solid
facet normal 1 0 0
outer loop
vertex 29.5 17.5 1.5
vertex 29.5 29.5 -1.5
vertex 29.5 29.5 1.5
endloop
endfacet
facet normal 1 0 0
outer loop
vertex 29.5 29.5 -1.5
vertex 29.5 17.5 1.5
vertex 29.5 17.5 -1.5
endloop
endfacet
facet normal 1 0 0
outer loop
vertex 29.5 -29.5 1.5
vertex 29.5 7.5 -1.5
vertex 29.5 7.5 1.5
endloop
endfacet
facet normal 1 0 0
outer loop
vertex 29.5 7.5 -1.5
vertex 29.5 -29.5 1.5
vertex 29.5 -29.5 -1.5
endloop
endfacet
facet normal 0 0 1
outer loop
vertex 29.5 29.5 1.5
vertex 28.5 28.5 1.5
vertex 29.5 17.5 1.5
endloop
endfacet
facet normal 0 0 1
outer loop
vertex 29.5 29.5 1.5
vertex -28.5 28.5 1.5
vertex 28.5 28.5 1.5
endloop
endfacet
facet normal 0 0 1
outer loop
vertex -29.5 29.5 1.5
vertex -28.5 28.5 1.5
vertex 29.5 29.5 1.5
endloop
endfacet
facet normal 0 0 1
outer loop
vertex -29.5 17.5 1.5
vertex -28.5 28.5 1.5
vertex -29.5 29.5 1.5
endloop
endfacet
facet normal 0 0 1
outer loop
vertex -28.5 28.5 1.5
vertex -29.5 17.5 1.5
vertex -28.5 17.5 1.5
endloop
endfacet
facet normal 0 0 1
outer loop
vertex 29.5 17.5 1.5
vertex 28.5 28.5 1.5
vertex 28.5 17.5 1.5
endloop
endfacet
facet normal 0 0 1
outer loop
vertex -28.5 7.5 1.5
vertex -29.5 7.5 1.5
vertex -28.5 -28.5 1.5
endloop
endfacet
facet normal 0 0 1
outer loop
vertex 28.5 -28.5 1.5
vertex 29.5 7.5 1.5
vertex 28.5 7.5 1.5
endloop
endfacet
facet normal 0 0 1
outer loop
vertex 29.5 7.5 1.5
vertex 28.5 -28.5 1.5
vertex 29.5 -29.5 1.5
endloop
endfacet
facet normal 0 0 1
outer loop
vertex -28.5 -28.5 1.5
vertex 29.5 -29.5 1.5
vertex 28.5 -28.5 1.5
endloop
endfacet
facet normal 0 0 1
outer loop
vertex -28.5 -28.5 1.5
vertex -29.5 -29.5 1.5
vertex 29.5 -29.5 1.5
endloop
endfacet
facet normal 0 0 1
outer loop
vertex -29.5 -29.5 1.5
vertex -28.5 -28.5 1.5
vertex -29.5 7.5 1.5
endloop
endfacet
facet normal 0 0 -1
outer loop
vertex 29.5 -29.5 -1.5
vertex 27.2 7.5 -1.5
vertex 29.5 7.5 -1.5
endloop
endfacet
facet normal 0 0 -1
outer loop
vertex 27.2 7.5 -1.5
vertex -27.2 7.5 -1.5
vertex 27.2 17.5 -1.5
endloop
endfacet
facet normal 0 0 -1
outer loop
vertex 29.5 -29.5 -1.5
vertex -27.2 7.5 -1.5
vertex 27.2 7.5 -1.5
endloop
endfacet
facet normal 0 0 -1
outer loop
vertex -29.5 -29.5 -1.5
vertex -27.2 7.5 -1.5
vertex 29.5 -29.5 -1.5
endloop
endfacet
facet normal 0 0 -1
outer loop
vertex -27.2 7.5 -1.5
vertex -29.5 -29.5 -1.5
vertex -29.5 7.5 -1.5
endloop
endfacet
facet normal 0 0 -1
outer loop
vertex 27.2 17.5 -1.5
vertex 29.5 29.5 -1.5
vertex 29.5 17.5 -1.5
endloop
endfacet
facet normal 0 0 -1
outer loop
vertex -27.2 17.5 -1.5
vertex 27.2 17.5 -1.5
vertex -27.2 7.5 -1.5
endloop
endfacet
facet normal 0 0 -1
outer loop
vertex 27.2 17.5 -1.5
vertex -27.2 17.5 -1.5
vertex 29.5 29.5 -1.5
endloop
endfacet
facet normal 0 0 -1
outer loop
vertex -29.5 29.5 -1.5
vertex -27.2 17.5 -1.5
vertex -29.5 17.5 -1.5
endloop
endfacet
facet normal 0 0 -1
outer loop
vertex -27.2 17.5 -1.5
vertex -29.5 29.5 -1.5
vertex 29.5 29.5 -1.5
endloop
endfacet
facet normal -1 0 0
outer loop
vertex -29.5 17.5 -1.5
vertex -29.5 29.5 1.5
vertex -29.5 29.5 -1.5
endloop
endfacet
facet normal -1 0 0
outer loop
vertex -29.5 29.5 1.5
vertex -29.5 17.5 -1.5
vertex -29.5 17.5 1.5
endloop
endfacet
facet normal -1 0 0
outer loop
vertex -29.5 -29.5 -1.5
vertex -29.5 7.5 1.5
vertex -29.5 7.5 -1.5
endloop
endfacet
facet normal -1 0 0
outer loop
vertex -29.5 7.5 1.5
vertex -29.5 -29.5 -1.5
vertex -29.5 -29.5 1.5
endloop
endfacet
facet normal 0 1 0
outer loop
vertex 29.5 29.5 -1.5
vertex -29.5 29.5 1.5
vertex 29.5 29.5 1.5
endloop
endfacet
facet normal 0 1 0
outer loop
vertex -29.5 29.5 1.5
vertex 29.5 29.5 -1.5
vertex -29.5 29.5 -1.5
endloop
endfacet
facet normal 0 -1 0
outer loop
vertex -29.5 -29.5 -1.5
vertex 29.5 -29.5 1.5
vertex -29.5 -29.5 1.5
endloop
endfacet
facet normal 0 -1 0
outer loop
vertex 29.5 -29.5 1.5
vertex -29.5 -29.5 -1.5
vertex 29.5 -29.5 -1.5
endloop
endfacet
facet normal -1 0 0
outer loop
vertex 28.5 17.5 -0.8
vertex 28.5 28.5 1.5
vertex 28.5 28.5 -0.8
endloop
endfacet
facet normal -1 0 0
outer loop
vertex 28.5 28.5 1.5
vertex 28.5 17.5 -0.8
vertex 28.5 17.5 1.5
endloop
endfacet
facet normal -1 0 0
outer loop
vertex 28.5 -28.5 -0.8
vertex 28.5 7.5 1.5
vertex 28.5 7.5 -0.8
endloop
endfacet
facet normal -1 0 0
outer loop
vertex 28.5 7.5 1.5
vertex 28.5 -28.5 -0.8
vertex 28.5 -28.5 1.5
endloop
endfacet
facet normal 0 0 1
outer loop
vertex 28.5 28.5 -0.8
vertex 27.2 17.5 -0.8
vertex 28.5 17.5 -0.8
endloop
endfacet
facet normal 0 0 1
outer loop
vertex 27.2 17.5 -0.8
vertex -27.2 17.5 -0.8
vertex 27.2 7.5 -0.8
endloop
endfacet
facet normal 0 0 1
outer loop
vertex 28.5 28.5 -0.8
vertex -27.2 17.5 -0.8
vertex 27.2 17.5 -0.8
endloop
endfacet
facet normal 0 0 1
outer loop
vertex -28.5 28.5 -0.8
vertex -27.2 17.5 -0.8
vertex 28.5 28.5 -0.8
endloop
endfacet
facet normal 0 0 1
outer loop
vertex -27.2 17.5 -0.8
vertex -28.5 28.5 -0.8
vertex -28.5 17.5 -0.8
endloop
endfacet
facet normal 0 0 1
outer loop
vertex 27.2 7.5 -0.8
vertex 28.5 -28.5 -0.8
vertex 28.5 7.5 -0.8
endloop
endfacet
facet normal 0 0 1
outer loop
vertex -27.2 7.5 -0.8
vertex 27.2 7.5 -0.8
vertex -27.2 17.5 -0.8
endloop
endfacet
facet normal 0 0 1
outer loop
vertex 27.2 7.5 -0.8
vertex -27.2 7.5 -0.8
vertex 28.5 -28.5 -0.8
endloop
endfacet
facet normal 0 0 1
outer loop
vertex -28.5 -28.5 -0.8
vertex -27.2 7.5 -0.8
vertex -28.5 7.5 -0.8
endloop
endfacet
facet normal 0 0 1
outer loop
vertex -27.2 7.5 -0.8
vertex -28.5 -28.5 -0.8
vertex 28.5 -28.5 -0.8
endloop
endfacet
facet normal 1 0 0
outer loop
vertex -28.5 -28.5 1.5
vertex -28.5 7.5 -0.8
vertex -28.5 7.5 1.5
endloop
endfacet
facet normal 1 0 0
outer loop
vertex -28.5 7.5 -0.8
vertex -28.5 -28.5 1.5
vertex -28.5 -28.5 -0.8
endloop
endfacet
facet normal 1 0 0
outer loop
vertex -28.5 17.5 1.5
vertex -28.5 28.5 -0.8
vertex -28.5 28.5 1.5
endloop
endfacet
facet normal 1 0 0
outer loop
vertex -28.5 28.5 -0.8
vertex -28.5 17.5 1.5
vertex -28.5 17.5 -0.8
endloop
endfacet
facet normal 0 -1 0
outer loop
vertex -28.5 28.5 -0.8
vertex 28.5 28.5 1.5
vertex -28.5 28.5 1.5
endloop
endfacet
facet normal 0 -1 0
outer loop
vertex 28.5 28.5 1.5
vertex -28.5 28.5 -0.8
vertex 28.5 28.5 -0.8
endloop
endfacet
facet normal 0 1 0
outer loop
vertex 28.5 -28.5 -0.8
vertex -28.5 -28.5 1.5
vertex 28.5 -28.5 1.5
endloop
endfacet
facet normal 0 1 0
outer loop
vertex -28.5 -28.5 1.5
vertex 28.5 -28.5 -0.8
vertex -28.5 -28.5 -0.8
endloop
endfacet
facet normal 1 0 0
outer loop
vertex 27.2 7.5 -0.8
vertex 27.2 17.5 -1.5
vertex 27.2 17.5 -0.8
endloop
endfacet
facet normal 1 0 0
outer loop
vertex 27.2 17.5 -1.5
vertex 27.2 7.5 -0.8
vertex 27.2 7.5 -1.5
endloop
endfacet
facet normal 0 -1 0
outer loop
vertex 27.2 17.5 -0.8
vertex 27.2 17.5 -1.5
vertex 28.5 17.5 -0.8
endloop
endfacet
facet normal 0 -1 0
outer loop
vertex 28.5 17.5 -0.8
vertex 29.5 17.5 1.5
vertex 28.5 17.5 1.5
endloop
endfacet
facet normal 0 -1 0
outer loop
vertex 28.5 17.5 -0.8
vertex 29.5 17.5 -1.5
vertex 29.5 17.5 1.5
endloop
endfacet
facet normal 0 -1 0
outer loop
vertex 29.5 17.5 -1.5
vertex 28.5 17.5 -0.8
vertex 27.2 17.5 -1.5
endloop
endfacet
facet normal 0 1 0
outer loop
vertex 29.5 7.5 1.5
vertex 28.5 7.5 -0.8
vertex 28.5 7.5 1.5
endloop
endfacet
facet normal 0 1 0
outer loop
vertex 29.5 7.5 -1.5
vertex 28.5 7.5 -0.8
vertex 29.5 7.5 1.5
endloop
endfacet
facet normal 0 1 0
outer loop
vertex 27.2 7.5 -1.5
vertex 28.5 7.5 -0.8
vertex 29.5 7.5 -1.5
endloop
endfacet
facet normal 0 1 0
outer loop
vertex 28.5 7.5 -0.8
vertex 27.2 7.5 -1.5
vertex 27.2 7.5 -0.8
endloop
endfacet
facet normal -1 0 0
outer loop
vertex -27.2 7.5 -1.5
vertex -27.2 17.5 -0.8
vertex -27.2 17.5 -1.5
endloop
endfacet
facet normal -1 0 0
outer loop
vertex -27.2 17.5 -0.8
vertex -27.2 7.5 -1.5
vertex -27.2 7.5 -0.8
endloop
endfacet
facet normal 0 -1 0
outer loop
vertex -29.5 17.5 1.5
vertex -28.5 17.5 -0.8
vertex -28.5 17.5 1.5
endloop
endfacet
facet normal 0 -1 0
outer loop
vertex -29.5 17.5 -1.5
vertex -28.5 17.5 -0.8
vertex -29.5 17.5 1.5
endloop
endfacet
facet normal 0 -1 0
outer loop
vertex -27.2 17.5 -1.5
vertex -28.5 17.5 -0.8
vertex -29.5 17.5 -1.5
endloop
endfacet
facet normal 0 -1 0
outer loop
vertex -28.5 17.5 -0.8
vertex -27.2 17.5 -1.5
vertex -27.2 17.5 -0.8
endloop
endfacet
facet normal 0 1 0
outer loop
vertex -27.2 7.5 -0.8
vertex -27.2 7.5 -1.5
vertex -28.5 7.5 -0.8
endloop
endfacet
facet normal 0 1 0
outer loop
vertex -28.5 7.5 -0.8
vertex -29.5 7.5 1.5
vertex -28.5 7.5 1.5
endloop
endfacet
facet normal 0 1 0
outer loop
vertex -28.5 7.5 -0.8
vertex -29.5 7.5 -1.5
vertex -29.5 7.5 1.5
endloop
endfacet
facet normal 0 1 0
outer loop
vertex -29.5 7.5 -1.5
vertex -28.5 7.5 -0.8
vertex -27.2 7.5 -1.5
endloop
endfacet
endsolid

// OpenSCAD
/*
*   ESPotifyEcho spareCubeBase
*   22-08-2022
*/

$fn=60;

module cubeBase()
{
  difference()
  {
    cube([59,59,3], true);
    translate([0,0,0.7])      cube([57,57,3], true);
    translate([27.2,7.5,-3]) color("red") cube([9,10,10]);
    translate([-36.2,7.5,-3])  color("red") cube([9,10,10]);
  }
} //  cubeBase()


module tubeExt1()
{
  difference()
  {
    cylinder(h=10, d=11.5, center=true);
    cylinder(h=11, d=9.5, center=true);
  }
} //  tubeExt1()

module tubeExt2()
{
  difference()
  {
    cylinder(h=8, d=11.5, center=true);
    cylinder(h=9, d=9.5, center=true);
    translate([7,0,0]) cube([8,2.5,9], true);
  }
} //  tubeExt2()


cubeBase();

//tubeExt1();
//tubeExt2();
